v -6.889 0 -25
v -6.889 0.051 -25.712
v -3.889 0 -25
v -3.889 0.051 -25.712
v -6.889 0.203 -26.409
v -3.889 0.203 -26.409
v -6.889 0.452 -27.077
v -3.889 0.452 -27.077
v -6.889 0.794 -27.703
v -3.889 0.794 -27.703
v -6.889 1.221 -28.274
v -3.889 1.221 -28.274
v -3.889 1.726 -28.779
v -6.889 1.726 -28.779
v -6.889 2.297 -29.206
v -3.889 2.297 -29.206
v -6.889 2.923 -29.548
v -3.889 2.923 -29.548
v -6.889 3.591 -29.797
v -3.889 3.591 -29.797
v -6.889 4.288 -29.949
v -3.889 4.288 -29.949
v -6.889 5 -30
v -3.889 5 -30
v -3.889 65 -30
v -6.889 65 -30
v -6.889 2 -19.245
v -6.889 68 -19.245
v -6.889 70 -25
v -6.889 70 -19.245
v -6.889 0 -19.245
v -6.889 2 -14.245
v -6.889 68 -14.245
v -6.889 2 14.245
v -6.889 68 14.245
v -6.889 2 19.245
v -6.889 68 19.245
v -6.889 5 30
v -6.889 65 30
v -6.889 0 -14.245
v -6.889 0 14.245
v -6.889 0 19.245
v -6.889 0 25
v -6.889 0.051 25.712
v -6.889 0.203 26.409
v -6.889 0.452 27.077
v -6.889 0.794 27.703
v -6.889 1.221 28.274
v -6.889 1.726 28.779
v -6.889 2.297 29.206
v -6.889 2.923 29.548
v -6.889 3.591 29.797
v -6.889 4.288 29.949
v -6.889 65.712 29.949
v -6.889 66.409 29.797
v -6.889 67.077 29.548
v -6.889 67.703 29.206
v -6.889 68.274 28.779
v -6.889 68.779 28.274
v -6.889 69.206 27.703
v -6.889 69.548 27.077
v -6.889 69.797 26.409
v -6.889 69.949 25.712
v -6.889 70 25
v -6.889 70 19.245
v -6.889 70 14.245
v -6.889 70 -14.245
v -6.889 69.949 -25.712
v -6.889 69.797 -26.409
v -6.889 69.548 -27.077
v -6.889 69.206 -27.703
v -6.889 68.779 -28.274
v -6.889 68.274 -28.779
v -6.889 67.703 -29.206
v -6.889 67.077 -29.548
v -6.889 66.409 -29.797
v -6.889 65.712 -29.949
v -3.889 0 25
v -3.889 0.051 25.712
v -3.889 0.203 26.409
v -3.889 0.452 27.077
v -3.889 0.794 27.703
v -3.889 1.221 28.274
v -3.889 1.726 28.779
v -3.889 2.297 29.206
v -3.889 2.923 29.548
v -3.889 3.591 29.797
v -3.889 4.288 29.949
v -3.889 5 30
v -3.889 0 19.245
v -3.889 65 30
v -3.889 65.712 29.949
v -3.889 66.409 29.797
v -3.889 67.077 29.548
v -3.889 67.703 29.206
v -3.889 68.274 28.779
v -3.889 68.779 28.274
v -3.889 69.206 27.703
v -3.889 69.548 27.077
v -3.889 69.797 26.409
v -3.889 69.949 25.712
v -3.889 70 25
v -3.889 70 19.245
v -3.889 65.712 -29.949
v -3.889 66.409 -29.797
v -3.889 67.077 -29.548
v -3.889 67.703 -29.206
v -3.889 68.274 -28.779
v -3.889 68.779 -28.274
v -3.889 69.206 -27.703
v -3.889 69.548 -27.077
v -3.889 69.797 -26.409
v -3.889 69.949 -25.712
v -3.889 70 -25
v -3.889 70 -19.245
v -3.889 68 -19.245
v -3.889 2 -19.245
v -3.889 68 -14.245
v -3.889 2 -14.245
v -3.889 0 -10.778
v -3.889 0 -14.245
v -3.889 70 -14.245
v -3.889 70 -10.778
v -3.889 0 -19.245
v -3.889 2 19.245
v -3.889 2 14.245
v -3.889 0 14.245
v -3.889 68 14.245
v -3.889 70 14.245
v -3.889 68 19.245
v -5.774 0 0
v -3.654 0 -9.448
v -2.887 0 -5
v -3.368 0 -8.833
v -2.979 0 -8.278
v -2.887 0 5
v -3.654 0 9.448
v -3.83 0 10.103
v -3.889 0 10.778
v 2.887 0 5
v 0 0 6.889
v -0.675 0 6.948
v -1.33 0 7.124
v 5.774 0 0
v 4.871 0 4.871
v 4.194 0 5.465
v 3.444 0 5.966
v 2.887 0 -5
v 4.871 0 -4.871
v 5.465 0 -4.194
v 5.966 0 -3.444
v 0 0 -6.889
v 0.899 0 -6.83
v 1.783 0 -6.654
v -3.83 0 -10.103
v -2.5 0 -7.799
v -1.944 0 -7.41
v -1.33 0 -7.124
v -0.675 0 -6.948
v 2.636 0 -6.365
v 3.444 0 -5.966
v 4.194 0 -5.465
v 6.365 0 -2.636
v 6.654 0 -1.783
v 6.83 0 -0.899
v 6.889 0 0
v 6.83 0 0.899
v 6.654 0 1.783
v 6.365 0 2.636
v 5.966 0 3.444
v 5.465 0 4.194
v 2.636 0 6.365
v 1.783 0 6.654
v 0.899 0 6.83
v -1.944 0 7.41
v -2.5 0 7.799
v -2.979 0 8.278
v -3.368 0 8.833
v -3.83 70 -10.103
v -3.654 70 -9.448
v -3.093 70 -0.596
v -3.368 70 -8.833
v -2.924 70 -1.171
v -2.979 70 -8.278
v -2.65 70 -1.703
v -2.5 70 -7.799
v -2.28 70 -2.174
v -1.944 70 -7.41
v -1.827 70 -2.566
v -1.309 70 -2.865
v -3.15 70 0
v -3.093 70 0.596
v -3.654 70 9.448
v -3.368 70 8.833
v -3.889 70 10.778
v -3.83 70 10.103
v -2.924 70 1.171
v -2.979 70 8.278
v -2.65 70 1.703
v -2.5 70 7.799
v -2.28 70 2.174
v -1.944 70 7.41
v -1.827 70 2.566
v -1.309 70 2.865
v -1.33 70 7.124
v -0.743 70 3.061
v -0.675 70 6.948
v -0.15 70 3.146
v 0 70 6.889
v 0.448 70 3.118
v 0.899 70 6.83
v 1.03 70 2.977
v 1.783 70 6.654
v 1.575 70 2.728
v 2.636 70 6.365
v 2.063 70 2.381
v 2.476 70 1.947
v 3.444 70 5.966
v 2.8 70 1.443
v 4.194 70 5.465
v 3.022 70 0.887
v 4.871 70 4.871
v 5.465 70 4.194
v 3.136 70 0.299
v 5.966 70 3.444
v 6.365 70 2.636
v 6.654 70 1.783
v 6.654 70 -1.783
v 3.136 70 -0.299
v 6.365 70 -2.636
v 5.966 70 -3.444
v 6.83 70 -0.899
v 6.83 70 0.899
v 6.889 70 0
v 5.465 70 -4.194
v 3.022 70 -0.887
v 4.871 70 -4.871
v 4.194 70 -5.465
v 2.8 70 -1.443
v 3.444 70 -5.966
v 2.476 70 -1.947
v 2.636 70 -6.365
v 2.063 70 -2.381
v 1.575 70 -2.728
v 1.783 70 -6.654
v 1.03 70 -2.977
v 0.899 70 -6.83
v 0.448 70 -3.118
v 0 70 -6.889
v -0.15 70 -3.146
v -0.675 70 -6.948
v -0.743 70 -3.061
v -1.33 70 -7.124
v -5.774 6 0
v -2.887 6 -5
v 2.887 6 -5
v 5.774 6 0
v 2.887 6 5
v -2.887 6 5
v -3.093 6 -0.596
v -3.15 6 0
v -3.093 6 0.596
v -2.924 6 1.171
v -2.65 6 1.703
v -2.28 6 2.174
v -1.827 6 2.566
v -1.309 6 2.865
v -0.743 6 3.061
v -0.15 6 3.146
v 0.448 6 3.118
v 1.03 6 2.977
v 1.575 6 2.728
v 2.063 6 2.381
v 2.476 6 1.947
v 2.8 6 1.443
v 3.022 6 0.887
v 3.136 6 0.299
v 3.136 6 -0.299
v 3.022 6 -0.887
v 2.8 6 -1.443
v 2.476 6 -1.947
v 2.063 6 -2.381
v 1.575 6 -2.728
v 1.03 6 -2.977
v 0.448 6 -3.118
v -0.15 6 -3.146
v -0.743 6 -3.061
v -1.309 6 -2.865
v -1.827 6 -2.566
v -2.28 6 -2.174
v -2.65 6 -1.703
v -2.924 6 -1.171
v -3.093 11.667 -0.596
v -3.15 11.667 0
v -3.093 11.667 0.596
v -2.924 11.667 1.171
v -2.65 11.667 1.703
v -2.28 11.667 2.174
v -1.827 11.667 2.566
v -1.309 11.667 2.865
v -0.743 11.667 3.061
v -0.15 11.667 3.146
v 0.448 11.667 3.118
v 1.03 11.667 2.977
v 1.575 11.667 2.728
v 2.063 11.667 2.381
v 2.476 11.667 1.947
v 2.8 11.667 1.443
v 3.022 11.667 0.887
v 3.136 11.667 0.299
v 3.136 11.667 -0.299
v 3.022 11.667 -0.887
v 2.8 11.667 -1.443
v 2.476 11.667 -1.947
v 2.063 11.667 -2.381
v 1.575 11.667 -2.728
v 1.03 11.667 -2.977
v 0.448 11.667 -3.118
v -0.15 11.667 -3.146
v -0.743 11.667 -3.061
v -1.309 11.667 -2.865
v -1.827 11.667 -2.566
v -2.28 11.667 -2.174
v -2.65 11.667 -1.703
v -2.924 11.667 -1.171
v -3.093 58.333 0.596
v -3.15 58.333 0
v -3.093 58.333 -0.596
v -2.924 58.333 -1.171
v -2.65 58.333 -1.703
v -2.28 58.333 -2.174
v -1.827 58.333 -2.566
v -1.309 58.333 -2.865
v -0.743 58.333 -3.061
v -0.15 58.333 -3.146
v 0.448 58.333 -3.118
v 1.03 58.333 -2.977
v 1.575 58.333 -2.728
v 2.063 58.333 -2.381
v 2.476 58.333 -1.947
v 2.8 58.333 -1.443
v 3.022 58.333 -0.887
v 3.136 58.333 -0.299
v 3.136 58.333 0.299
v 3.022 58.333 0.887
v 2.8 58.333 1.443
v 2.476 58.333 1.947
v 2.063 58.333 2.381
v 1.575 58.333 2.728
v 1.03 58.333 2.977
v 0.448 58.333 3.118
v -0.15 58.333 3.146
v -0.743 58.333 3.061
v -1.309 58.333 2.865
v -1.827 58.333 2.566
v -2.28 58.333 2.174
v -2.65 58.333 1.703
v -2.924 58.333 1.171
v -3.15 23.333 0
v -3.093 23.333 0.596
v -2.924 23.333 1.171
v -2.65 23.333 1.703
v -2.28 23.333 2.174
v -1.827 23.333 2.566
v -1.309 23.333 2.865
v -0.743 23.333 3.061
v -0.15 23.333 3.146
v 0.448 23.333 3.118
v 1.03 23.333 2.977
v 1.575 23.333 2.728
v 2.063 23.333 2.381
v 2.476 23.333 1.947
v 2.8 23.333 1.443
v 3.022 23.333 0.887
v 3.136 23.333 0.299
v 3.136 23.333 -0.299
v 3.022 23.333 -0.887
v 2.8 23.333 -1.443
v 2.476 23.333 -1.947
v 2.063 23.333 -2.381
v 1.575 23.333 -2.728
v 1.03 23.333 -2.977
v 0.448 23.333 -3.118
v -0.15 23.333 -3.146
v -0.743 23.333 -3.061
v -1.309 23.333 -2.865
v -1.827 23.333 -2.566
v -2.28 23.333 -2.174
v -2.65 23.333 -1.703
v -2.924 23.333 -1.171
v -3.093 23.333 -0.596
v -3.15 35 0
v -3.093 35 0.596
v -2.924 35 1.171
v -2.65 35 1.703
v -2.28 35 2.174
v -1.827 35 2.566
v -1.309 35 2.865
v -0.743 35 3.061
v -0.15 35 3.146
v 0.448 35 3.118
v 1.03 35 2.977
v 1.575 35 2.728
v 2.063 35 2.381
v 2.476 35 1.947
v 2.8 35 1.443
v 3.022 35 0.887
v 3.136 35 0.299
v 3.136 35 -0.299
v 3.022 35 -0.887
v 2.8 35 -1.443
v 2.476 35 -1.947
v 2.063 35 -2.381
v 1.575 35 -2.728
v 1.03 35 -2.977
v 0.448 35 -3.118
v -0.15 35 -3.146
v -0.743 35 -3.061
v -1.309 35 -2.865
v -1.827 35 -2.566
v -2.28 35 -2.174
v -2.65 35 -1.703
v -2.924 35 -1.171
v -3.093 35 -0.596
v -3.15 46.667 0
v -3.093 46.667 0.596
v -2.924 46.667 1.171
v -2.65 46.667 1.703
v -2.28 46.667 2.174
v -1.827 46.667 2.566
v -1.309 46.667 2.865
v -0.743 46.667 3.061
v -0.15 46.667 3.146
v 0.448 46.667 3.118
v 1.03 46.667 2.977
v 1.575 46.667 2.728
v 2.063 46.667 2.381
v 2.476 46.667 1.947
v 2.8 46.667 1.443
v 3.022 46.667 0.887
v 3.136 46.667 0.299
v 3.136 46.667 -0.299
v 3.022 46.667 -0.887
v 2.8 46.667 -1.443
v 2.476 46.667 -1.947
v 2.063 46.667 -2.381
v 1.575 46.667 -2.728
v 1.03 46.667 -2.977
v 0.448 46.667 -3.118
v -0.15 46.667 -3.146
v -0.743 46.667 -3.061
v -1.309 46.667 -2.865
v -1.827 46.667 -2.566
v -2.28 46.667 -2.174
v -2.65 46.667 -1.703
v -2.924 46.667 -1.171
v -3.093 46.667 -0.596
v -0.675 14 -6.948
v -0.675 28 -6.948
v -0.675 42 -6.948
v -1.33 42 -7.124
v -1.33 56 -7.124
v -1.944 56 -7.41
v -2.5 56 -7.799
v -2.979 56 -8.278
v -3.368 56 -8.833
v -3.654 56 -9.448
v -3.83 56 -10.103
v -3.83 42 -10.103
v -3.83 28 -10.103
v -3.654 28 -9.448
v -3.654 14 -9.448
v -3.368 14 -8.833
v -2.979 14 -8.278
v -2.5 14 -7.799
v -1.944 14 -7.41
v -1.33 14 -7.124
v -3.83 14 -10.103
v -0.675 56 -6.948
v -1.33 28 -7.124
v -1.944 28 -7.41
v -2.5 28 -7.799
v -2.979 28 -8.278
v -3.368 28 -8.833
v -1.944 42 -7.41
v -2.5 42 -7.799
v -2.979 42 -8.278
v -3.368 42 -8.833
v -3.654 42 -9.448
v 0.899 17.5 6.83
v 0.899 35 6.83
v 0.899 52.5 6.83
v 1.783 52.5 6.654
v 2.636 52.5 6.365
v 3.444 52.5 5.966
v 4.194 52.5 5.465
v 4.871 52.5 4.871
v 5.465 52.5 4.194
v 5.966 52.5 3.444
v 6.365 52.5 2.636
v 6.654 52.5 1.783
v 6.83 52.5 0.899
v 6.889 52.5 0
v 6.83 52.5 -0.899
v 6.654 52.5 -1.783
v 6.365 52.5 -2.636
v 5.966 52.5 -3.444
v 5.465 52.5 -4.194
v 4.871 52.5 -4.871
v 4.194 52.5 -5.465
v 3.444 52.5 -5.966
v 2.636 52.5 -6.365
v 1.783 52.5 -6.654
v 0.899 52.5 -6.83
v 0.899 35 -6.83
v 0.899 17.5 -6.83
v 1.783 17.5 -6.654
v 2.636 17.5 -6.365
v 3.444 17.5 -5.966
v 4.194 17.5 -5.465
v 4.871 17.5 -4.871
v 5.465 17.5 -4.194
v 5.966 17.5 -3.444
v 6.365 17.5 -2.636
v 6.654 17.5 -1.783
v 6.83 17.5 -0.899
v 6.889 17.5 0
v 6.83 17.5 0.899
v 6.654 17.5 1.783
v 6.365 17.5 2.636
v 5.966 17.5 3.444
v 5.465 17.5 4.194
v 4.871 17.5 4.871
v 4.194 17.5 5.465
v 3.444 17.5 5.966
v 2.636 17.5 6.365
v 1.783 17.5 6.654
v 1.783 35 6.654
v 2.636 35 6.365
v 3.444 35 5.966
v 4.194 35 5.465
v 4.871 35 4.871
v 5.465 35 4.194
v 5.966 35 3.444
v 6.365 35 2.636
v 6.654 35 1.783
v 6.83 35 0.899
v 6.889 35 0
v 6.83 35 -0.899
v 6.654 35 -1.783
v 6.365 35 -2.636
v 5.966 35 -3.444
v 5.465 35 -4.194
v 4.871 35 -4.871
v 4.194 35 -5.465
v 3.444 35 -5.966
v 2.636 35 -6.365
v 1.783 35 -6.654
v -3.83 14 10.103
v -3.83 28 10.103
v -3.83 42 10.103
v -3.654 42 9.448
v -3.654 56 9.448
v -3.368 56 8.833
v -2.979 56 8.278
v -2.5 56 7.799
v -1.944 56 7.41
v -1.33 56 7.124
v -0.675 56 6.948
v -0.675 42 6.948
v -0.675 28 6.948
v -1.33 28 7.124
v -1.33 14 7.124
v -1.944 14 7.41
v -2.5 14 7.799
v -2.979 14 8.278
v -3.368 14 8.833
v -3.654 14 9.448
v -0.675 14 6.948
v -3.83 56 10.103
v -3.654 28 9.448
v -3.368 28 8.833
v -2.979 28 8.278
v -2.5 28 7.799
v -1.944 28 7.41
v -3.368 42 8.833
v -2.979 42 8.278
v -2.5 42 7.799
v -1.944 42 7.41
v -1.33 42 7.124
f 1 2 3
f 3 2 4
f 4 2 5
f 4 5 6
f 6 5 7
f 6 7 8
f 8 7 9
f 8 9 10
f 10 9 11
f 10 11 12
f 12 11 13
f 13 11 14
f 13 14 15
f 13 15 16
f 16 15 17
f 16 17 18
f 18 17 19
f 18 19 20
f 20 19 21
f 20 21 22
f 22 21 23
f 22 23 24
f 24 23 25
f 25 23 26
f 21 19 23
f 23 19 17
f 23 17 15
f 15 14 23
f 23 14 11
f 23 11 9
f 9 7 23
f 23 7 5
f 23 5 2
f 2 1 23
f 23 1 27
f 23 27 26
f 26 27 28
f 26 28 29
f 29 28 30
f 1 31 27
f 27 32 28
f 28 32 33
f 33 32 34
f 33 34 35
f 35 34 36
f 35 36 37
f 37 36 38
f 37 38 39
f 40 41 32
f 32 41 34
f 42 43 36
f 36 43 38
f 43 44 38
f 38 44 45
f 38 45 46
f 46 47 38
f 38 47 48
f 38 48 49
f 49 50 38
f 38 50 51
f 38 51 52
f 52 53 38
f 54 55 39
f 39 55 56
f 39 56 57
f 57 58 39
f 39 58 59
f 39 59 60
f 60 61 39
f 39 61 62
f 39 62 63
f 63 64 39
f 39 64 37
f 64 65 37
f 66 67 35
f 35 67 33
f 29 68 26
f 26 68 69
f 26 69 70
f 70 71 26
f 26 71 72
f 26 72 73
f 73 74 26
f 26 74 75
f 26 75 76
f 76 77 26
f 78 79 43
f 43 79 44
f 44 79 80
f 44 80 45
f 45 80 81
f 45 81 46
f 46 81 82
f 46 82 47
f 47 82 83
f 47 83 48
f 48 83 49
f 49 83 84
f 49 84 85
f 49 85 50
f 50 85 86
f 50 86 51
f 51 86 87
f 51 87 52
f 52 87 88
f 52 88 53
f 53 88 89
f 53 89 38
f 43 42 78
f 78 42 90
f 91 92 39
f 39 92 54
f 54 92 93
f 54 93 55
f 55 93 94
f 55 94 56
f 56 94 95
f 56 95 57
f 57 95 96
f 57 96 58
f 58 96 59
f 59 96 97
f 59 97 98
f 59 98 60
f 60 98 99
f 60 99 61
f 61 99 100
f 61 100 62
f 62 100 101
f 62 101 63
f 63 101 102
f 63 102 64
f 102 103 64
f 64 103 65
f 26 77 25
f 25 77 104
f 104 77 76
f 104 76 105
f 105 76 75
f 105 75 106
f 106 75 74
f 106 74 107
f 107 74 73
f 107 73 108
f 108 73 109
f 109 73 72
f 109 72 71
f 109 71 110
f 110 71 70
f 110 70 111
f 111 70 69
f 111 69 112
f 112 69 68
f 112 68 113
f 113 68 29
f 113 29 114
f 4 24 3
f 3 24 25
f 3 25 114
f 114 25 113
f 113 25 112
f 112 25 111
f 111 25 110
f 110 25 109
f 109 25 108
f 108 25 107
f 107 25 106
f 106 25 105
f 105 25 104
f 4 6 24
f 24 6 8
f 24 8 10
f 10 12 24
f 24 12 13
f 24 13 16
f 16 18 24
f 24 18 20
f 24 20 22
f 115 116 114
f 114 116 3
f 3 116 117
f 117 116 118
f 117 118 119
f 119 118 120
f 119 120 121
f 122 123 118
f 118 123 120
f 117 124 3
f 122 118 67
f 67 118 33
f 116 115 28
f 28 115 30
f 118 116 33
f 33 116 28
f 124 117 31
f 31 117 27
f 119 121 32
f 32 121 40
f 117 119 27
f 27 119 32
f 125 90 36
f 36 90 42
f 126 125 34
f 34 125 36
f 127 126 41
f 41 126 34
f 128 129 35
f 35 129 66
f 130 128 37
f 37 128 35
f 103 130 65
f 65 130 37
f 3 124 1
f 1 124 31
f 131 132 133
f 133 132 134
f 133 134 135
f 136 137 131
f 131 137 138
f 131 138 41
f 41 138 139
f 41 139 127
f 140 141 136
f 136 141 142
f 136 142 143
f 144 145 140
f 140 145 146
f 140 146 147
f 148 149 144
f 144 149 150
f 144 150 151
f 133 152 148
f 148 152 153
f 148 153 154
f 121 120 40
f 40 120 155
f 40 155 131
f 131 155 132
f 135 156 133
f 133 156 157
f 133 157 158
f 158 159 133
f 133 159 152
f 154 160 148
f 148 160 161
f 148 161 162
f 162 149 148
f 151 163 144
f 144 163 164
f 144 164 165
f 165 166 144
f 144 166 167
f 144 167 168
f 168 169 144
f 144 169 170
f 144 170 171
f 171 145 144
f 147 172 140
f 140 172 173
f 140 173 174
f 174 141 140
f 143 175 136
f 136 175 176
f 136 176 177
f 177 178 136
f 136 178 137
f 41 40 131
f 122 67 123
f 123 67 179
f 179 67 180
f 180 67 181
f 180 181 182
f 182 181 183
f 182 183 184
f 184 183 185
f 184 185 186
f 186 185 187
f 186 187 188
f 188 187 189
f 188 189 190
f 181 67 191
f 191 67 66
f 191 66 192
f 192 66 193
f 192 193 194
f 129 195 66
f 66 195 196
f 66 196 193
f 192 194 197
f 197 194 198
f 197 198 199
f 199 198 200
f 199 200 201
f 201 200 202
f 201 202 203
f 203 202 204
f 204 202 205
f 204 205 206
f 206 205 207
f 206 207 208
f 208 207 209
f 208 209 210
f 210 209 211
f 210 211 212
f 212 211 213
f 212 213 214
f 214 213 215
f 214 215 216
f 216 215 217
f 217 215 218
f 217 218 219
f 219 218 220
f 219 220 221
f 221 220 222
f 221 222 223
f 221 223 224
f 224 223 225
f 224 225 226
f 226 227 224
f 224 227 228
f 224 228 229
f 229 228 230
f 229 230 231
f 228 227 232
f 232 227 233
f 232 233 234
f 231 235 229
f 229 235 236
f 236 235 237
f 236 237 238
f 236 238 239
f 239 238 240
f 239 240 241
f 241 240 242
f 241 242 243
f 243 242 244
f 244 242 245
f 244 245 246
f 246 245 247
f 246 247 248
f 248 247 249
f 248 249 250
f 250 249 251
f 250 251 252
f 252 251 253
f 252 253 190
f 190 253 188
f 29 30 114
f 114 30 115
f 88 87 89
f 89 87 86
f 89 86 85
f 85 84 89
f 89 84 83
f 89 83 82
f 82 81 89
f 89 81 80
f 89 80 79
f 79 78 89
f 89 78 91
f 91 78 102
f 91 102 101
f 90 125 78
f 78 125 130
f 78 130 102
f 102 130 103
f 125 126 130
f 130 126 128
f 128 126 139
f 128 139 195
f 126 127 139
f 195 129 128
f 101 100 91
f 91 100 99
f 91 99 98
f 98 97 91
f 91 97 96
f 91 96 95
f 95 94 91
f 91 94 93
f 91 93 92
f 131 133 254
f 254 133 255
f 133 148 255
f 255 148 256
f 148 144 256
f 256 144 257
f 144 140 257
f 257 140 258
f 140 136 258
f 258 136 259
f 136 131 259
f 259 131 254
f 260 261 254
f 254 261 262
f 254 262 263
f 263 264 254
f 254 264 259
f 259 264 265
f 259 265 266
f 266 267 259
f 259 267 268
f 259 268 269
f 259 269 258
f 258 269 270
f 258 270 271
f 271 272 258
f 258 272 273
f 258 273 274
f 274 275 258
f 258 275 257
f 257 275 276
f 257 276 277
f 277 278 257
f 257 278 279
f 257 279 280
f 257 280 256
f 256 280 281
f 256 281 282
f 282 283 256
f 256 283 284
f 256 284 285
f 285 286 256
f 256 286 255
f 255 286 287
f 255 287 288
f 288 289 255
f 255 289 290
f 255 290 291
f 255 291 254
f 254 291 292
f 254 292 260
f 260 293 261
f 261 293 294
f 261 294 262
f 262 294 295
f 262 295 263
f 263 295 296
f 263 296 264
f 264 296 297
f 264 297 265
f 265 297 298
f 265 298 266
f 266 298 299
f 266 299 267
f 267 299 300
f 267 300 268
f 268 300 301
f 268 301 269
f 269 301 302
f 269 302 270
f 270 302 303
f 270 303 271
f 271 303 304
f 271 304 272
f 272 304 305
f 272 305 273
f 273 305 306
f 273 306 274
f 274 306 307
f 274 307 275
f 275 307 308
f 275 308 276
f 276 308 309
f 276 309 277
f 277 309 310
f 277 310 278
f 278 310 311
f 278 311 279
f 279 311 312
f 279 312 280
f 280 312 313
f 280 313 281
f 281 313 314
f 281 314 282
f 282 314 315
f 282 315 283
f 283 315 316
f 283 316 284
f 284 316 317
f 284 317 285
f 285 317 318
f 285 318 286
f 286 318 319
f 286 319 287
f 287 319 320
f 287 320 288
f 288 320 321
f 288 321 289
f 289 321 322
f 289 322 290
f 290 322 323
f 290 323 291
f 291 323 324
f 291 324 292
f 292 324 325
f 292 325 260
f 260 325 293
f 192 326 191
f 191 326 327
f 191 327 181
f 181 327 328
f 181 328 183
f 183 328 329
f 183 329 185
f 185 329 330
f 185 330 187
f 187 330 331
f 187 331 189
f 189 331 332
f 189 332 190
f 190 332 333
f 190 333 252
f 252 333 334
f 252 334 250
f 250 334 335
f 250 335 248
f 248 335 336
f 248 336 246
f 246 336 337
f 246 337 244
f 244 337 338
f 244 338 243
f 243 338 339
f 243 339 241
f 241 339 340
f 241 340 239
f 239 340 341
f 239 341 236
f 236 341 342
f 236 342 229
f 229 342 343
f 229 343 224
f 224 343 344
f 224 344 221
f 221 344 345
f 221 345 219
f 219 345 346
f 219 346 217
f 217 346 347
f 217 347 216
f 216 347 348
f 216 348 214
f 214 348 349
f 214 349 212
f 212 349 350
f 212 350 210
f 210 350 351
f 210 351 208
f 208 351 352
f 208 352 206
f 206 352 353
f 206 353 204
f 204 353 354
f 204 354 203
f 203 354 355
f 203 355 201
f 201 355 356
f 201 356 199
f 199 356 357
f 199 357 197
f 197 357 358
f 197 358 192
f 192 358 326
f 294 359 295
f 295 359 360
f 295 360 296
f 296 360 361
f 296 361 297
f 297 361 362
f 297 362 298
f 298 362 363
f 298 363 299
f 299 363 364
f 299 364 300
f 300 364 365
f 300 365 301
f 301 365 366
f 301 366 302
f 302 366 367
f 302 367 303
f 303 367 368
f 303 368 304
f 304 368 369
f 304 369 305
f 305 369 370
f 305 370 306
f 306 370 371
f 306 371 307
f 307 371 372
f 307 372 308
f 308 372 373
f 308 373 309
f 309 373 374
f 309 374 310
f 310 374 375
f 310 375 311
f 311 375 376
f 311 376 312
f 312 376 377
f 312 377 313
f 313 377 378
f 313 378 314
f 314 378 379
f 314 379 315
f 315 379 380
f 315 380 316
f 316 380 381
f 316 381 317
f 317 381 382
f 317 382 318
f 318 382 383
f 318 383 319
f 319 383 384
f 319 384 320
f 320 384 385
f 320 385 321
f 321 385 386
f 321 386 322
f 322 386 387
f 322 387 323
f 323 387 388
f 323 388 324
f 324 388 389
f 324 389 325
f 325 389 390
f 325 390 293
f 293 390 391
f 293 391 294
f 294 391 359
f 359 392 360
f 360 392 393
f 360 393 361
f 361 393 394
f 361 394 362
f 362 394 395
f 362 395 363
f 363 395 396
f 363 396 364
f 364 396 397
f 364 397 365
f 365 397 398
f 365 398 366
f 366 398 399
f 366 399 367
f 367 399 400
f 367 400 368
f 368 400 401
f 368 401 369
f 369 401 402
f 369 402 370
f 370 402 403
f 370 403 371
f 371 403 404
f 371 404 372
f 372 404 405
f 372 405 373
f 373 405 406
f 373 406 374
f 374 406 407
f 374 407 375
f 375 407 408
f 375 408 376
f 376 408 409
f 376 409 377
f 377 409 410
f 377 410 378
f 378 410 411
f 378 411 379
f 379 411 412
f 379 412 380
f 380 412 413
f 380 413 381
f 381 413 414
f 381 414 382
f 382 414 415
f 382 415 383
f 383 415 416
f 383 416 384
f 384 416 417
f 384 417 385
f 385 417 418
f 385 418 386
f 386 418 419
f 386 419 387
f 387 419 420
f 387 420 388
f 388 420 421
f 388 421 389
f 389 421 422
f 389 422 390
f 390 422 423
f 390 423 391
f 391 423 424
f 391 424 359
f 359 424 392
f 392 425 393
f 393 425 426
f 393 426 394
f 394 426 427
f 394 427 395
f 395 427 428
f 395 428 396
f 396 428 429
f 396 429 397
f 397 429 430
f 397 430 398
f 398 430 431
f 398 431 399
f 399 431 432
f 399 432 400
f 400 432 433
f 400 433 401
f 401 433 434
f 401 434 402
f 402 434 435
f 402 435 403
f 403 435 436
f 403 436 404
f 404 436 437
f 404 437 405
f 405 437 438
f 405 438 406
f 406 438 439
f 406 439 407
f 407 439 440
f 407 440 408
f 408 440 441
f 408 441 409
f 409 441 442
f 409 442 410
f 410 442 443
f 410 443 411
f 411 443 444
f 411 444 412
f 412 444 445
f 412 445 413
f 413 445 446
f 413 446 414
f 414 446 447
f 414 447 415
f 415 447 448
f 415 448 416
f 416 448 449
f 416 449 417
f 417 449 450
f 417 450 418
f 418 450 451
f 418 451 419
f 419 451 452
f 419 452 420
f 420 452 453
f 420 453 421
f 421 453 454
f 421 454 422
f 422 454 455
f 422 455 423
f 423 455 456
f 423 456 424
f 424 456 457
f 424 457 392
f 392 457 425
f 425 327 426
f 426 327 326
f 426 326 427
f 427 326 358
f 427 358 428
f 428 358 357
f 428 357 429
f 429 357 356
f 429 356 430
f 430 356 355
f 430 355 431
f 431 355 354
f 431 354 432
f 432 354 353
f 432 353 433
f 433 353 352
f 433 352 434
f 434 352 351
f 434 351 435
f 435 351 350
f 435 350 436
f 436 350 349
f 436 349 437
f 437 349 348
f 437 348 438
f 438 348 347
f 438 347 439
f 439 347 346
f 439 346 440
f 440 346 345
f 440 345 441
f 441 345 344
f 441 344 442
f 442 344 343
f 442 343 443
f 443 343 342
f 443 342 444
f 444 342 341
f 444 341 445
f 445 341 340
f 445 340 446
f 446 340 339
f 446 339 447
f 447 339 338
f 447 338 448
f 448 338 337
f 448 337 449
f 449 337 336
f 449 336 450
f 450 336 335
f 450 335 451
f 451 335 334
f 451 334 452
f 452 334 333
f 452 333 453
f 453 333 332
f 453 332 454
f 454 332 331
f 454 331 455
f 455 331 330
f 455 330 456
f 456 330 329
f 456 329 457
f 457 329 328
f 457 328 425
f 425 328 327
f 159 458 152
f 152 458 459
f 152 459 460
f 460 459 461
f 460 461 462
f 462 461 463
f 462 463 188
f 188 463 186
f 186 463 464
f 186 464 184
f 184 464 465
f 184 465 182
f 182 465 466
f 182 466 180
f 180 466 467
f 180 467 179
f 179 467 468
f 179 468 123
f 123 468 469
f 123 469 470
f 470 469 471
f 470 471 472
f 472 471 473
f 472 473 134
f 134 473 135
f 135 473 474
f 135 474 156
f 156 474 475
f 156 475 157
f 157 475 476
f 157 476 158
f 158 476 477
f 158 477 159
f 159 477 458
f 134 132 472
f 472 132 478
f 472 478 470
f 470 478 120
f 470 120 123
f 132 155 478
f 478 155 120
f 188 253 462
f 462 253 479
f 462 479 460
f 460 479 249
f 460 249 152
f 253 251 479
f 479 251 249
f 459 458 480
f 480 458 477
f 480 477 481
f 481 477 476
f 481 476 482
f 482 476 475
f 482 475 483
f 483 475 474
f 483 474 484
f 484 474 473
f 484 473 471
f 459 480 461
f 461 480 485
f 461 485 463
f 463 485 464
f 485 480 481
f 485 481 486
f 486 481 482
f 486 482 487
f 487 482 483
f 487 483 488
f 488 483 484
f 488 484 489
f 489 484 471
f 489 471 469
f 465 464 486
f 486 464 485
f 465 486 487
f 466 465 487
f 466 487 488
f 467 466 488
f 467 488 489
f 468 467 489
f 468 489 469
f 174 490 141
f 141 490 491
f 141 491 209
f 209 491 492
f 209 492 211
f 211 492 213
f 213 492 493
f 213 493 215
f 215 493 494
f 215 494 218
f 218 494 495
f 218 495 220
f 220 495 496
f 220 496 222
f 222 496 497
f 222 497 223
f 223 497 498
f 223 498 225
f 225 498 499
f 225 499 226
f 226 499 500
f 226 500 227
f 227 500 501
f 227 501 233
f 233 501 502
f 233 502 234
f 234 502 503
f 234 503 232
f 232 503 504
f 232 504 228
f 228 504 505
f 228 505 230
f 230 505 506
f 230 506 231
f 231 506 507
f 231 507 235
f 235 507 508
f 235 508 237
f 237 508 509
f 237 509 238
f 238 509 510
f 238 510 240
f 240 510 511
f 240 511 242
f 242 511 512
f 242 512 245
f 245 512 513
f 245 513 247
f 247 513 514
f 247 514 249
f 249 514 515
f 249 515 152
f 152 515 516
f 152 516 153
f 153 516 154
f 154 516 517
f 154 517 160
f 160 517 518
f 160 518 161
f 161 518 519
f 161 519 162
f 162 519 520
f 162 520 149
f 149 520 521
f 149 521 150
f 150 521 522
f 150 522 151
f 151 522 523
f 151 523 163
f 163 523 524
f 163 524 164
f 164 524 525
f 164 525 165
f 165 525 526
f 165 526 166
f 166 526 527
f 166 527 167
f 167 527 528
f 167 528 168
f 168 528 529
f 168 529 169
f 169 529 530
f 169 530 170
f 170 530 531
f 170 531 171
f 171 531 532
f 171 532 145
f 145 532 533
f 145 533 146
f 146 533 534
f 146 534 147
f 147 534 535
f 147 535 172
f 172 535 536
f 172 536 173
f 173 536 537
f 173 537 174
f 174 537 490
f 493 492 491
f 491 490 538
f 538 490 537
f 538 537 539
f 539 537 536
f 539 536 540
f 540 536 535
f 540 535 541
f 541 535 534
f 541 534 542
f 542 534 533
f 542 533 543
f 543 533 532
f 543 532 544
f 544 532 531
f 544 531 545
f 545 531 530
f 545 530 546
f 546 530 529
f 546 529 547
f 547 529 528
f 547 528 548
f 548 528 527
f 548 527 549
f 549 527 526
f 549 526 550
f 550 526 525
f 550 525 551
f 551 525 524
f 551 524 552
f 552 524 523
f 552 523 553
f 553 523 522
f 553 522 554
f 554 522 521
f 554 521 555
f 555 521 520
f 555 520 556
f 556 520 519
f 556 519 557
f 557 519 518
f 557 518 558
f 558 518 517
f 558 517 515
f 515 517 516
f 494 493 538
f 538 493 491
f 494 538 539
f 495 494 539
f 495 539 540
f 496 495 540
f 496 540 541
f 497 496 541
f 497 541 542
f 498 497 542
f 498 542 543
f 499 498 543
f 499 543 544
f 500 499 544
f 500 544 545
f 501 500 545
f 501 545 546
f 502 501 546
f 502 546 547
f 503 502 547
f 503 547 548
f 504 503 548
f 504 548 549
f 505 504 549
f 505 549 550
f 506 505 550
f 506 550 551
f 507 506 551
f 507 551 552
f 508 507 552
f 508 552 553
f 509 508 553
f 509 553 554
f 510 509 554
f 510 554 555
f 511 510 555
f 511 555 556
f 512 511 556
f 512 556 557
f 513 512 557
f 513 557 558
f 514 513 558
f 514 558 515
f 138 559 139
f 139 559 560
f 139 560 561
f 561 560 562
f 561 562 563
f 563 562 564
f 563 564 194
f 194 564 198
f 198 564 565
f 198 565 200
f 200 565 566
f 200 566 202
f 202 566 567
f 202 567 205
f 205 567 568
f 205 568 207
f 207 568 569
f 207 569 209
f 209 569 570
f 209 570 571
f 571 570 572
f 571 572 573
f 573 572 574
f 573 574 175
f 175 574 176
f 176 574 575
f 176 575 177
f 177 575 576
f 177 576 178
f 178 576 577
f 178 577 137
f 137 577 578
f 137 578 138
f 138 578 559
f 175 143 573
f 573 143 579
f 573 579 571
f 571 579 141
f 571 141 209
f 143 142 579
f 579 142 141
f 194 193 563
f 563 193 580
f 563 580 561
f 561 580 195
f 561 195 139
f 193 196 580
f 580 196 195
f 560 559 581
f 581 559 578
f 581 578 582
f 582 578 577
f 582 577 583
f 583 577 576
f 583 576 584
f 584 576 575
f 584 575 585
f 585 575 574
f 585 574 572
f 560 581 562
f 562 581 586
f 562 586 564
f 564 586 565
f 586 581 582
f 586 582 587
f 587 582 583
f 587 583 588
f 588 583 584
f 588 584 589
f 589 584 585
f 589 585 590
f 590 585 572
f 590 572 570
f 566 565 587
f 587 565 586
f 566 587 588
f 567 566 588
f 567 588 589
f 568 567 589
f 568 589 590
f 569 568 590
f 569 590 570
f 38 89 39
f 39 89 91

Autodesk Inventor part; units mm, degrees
ref_plane "YZ Plane" through (0, 0, 0) normal (1, 0, 0) x (0, 1, 0)
ref_plane "XZ Plane" through (0, 0, 0) normal (0, 1, 0) x (-1, 0, 0)
ref_plane "XY Plane" through (0, 0, 0) normal (0, 0, 1) x (1, 0, 0)
sketch "Boceto1" plane through (0, 0, 0) normal (0, 1, 0) x (-1, 0, 0)
  circle A0 centre (0, 0) radius 3.15
  line L0 (6.889, 30) -> (3.889, 30)
  line L1 (3.889, -30) -> (6.889, -30)
  line L2 (6.889, -30) -> (6.889, 30)
  line L3 (0, 0) -> (3.15, 0) construction
  arc A1 (0, 6.889) -> (0, -6.889) centre (0, 0) ccw
  line L4 (3.889, 30) -> (3.889, 10.7779)
  line L5 (3.889, -30) -> (3.889, -10.7779)
  arc A2 (0, 6.889) -> (3.889, 10.7779) centre (0, 10.7779) ccw
  arc A3 (3.889, -10.7779) -> (0, -6.889) centre (0, -10.7779) ccw
  line L6 (2.9445, 5.1) -> (5.889, 0) construction
  line L7 (5.889, 0) -> (2.9445, -5.1) construction
  line L8 (2.9445, -5.1) -> (-2.9445, -5.1) construction
  line L9 (-2.9445, -5.1) -> (-5.889, 0) construction
  line L10 (-5.889, 0) -> (-2.9445, 5.1) construction
  line L11 (-2.9445, 5.1) -> (2.9445, 5.1) construction
  line L12 (5.889, 0) -> (6.889, 0) construction
  line L13 (-5.889, 0) -> (-6.889, 0) construction
  line L14 (0, -10.7779) -> (0, 0) construction
  dimension "d0" = 6.3
  dimension "d3" = 10.2
  dimension "d4" = 1
  dimension "d5" = 3
  dimension "d12" = 60
extrude "Extrusión1" add sketch "Boceto1" along normal blind 70
sketch "Boceto2" plane through (0, 0, 0) normal (0, -1, 0) x (1, 0, 0)
  line L0 (-5.7735, 0) -> (-2.8868, 5)
  line L1 (-2.8868, 5) -> (2.8868, 5)
  line L2 (2.8868, 5) -> (5.7735, 0)
  line L3 (5.7735, 0) -> (2.8868, -5)
  line L4 (2.8868, -5) -> (-2.8868, -5)
  line L5 (-2.8868, -5) -> (-5.7735, 0)
  point P0 (0, 0)
  point P1 (0, 0)
  dimension "d8" = 10
extrude "Extrusión2" cut sketch "Boceto2" against normal blind 6
sketch "Boceto4" plane through (-6.889, 0, -30) normal (-1, 0, 0) x (0, 0, 1)
  line L0 (10.7549, 2) -> (15.7549, 2)
  line L1 (15.7549, 2) -> (15.7549, 0)
  line L2 (15.7549, 0) -> (10.7549, 0)
  line L3 (10.7549, 0) -> (10.7549, 2)
  line L4 (44.2451, 2) -> (49.2451, 2)
  line L5 (49.2451, 2) -> (49.2451, 0)
  line L6 (49.2451, 0) -> (44.2451, 0)
  line L7 (44.2451, 0) -> (44.2451, 2)
  line L8 (0, 0) -> (60, 0) projected
  line L9 (30, 0) -> (30, 6) projected
  line L10 (30, 0) -> (30, 70) construction
  line L11 (0, 70) -> (60, 70) projected
  line L12 (30, 35) -> (1.5097, 35) construction
  line L13 (10.7549, 68) -> (15.7549, 68)
  line L14 (15.7549, 68) -> (15.7549, 70)
  line L15 (15.7549, 70) -> (10.7549, 70)
  line L16 (10.7549, 70) -> (10.7549, 68)
  line L17 (44.2451, 68) -> (49.2451, 68)
  line L18 (49.2451, 68) -> (49.2451, 70)
  line L19 (49.2451, 70) -> (44.2451, 70)
  line L20 (44.2451, 70) -> (44.2451, 68)
  point P0 (47.493, 22.347)
  dimension "d19" = 5
  dimension "d20" = 2
extrude "Extrusión3" cut sketch "Boceto4" against normal up to next
fillet "Empalme1" radius 5 4 edges at (-5.389, 70, -30) (-5.389, 70, 30) (-5.389, 0, 30) (-5.389, 0, -30)
properties part number "Soporte ESC"
